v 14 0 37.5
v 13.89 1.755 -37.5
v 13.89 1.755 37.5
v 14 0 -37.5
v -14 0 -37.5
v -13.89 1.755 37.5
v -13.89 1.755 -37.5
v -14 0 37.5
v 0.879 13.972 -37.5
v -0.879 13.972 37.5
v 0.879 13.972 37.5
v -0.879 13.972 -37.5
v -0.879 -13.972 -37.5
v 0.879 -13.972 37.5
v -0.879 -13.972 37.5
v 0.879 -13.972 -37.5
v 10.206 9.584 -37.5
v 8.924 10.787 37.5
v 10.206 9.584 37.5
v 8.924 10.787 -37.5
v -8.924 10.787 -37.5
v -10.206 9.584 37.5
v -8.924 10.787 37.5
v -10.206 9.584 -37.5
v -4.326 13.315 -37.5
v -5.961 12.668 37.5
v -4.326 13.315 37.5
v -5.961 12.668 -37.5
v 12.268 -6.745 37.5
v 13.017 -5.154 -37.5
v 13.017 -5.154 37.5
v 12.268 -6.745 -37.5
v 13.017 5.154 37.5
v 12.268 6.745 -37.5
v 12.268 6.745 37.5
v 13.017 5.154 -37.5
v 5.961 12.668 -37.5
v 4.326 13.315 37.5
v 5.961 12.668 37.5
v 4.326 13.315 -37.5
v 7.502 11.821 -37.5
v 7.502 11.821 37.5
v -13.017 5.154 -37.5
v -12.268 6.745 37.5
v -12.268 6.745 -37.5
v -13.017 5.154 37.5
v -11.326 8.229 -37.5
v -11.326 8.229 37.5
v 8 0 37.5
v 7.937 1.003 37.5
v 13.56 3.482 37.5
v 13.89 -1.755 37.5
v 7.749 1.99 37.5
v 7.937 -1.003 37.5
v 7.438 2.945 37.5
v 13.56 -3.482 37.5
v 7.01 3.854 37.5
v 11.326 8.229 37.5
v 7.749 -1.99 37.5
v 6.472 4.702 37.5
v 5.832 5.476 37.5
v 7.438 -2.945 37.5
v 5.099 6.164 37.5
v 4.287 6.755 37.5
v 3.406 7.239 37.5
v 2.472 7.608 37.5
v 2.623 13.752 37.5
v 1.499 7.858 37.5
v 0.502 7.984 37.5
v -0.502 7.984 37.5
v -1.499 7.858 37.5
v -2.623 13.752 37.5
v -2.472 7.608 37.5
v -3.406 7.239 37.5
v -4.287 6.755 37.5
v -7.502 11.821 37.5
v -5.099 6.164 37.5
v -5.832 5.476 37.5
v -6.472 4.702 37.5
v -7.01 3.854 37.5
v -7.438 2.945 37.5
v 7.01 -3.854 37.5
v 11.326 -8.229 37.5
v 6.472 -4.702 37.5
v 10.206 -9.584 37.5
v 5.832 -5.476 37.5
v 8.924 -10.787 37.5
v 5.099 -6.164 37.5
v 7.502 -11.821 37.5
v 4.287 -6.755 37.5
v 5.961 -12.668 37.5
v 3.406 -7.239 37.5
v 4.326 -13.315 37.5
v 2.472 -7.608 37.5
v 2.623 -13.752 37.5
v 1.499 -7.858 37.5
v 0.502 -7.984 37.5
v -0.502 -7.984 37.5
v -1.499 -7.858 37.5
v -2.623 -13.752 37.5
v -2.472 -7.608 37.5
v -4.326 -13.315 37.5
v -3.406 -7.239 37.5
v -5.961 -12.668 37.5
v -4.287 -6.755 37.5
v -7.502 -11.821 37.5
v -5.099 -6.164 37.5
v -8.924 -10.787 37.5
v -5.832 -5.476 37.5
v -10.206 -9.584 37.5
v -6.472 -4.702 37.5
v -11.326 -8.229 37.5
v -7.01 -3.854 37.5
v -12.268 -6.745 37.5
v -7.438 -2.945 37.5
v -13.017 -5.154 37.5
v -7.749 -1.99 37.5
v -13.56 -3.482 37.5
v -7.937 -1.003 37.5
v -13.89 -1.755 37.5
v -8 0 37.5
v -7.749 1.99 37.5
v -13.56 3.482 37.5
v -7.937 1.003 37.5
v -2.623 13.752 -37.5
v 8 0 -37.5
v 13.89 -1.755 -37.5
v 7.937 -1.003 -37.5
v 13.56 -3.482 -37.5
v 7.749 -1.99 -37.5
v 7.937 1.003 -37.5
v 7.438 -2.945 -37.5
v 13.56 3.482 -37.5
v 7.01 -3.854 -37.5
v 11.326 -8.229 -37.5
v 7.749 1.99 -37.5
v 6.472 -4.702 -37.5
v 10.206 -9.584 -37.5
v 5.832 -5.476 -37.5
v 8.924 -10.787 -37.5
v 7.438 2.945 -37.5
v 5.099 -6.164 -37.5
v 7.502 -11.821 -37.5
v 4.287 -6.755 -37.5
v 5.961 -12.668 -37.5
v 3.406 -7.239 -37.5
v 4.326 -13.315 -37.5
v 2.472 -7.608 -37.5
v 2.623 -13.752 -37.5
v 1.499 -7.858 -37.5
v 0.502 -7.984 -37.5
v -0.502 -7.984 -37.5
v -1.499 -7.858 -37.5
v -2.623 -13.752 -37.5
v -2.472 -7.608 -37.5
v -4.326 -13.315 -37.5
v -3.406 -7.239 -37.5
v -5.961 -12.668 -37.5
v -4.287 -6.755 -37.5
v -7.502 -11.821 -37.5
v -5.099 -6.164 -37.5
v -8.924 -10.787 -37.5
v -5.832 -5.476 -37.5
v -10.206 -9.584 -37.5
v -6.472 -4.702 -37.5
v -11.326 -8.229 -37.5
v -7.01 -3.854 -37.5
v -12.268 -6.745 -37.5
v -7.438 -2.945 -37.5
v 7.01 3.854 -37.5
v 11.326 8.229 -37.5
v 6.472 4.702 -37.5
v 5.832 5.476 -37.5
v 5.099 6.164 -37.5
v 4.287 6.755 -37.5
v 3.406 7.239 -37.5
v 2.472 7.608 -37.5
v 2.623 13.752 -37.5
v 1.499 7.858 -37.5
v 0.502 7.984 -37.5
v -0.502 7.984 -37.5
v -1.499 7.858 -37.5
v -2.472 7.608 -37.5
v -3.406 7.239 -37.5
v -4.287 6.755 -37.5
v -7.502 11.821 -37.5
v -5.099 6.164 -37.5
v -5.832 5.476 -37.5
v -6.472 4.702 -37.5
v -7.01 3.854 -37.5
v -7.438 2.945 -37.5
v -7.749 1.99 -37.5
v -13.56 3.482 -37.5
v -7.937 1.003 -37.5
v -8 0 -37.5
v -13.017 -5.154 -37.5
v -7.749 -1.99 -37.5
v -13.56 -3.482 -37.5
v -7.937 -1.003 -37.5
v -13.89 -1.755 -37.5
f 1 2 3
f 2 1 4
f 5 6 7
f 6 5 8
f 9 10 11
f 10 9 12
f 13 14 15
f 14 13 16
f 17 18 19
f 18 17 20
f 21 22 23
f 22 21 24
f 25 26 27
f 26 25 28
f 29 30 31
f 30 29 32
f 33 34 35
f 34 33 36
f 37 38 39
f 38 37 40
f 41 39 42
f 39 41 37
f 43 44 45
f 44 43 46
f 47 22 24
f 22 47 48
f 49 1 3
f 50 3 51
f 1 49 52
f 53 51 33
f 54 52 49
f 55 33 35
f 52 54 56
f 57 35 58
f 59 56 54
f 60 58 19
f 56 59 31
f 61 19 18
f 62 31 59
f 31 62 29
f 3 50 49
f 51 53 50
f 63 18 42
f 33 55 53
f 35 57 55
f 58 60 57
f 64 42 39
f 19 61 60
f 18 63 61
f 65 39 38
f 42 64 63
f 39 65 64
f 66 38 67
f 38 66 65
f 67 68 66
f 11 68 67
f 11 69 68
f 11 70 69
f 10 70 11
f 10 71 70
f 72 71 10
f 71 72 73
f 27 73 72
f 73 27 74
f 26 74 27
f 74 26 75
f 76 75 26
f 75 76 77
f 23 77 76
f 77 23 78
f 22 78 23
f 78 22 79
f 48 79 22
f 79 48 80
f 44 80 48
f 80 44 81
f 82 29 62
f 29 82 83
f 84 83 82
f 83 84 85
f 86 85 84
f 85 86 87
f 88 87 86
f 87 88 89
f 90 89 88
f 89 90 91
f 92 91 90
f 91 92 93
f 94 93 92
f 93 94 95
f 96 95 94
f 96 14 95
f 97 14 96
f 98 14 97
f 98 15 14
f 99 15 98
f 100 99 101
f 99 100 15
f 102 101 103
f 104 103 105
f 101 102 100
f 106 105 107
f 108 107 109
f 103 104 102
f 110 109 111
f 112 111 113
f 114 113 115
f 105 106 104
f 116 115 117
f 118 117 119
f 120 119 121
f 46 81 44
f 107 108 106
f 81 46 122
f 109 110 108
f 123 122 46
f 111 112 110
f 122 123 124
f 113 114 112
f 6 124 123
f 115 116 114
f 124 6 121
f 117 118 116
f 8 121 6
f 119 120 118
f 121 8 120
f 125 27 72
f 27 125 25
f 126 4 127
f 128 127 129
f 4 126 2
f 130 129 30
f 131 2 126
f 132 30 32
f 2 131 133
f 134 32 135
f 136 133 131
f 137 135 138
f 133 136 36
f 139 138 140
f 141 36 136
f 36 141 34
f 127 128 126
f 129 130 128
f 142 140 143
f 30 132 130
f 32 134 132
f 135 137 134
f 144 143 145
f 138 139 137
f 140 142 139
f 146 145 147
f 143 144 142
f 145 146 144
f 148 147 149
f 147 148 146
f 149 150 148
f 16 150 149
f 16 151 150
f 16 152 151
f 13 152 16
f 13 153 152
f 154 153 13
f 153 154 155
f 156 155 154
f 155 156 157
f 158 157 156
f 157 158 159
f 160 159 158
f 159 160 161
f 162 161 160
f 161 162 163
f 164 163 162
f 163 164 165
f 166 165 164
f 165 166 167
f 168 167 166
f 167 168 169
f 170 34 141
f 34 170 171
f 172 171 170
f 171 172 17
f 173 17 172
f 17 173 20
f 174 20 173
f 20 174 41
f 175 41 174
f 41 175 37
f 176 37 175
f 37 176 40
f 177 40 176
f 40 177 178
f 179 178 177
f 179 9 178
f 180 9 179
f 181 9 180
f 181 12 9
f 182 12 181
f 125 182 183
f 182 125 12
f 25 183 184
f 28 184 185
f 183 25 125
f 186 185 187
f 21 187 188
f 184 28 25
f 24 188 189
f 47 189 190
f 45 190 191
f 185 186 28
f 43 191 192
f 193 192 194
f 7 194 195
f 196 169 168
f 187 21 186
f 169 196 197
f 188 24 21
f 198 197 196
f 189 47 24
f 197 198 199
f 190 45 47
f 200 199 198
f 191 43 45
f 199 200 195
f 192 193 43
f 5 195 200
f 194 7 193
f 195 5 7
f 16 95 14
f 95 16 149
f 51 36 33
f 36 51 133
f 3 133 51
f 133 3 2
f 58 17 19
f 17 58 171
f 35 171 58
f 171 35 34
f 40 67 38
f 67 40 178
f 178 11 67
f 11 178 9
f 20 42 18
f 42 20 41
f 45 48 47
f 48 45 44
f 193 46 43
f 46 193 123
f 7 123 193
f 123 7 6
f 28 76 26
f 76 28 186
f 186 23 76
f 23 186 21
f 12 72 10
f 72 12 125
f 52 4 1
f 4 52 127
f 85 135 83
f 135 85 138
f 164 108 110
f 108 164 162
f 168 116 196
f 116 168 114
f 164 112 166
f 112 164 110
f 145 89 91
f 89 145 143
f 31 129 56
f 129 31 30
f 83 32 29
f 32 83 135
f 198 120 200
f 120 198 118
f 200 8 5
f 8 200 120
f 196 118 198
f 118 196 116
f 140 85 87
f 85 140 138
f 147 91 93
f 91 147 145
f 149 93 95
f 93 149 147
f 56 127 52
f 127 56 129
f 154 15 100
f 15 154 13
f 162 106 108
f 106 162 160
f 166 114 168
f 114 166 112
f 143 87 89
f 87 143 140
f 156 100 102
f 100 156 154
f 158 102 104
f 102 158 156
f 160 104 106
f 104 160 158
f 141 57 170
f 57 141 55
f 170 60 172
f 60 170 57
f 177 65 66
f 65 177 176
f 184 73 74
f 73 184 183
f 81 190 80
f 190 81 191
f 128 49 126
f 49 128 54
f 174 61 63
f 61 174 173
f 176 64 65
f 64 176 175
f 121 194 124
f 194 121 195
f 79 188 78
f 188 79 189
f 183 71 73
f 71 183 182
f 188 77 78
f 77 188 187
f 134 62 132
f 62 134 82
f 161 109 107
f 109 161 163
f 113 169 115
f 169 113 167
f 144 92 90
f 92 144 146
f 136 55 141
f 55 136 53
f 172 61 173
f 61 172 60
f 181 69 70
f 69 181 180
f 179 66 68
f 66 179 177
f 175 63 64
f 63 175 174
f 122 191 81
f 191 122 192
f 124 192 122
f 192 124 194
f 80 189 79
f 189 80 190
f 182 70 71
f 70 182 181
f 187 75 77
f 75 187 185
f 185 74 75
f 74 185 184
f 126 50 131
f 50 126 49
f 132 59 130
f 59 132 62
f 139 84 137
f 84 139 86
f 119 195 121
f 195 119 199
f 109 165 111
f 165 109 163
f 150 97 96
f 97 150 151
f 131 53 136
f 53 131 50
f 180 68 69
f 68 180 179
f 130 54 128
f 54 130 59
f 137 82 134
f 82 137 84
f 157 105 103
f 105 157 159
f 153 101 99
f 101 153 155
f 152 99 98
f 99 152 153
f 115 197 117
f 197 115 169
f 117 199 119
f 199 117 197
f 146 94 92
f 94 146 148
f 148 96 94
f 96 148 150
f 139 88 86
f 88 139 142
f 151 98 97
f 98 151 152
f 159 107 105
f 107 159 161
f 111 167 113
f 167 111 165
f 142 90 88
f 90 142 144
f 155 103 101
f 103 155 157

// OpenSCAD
$fn = 50;


difference() {
	union() {
		translate(v = [0, 0, -37.5000000000]) {
			cylinder(h = 75, r = 14.0000000000);
		}
	}
	union() {
		translate(v = [0, 0, -100.0000000000]) {
			cylinder(h = 200, r = 8);
		}
	}
}
